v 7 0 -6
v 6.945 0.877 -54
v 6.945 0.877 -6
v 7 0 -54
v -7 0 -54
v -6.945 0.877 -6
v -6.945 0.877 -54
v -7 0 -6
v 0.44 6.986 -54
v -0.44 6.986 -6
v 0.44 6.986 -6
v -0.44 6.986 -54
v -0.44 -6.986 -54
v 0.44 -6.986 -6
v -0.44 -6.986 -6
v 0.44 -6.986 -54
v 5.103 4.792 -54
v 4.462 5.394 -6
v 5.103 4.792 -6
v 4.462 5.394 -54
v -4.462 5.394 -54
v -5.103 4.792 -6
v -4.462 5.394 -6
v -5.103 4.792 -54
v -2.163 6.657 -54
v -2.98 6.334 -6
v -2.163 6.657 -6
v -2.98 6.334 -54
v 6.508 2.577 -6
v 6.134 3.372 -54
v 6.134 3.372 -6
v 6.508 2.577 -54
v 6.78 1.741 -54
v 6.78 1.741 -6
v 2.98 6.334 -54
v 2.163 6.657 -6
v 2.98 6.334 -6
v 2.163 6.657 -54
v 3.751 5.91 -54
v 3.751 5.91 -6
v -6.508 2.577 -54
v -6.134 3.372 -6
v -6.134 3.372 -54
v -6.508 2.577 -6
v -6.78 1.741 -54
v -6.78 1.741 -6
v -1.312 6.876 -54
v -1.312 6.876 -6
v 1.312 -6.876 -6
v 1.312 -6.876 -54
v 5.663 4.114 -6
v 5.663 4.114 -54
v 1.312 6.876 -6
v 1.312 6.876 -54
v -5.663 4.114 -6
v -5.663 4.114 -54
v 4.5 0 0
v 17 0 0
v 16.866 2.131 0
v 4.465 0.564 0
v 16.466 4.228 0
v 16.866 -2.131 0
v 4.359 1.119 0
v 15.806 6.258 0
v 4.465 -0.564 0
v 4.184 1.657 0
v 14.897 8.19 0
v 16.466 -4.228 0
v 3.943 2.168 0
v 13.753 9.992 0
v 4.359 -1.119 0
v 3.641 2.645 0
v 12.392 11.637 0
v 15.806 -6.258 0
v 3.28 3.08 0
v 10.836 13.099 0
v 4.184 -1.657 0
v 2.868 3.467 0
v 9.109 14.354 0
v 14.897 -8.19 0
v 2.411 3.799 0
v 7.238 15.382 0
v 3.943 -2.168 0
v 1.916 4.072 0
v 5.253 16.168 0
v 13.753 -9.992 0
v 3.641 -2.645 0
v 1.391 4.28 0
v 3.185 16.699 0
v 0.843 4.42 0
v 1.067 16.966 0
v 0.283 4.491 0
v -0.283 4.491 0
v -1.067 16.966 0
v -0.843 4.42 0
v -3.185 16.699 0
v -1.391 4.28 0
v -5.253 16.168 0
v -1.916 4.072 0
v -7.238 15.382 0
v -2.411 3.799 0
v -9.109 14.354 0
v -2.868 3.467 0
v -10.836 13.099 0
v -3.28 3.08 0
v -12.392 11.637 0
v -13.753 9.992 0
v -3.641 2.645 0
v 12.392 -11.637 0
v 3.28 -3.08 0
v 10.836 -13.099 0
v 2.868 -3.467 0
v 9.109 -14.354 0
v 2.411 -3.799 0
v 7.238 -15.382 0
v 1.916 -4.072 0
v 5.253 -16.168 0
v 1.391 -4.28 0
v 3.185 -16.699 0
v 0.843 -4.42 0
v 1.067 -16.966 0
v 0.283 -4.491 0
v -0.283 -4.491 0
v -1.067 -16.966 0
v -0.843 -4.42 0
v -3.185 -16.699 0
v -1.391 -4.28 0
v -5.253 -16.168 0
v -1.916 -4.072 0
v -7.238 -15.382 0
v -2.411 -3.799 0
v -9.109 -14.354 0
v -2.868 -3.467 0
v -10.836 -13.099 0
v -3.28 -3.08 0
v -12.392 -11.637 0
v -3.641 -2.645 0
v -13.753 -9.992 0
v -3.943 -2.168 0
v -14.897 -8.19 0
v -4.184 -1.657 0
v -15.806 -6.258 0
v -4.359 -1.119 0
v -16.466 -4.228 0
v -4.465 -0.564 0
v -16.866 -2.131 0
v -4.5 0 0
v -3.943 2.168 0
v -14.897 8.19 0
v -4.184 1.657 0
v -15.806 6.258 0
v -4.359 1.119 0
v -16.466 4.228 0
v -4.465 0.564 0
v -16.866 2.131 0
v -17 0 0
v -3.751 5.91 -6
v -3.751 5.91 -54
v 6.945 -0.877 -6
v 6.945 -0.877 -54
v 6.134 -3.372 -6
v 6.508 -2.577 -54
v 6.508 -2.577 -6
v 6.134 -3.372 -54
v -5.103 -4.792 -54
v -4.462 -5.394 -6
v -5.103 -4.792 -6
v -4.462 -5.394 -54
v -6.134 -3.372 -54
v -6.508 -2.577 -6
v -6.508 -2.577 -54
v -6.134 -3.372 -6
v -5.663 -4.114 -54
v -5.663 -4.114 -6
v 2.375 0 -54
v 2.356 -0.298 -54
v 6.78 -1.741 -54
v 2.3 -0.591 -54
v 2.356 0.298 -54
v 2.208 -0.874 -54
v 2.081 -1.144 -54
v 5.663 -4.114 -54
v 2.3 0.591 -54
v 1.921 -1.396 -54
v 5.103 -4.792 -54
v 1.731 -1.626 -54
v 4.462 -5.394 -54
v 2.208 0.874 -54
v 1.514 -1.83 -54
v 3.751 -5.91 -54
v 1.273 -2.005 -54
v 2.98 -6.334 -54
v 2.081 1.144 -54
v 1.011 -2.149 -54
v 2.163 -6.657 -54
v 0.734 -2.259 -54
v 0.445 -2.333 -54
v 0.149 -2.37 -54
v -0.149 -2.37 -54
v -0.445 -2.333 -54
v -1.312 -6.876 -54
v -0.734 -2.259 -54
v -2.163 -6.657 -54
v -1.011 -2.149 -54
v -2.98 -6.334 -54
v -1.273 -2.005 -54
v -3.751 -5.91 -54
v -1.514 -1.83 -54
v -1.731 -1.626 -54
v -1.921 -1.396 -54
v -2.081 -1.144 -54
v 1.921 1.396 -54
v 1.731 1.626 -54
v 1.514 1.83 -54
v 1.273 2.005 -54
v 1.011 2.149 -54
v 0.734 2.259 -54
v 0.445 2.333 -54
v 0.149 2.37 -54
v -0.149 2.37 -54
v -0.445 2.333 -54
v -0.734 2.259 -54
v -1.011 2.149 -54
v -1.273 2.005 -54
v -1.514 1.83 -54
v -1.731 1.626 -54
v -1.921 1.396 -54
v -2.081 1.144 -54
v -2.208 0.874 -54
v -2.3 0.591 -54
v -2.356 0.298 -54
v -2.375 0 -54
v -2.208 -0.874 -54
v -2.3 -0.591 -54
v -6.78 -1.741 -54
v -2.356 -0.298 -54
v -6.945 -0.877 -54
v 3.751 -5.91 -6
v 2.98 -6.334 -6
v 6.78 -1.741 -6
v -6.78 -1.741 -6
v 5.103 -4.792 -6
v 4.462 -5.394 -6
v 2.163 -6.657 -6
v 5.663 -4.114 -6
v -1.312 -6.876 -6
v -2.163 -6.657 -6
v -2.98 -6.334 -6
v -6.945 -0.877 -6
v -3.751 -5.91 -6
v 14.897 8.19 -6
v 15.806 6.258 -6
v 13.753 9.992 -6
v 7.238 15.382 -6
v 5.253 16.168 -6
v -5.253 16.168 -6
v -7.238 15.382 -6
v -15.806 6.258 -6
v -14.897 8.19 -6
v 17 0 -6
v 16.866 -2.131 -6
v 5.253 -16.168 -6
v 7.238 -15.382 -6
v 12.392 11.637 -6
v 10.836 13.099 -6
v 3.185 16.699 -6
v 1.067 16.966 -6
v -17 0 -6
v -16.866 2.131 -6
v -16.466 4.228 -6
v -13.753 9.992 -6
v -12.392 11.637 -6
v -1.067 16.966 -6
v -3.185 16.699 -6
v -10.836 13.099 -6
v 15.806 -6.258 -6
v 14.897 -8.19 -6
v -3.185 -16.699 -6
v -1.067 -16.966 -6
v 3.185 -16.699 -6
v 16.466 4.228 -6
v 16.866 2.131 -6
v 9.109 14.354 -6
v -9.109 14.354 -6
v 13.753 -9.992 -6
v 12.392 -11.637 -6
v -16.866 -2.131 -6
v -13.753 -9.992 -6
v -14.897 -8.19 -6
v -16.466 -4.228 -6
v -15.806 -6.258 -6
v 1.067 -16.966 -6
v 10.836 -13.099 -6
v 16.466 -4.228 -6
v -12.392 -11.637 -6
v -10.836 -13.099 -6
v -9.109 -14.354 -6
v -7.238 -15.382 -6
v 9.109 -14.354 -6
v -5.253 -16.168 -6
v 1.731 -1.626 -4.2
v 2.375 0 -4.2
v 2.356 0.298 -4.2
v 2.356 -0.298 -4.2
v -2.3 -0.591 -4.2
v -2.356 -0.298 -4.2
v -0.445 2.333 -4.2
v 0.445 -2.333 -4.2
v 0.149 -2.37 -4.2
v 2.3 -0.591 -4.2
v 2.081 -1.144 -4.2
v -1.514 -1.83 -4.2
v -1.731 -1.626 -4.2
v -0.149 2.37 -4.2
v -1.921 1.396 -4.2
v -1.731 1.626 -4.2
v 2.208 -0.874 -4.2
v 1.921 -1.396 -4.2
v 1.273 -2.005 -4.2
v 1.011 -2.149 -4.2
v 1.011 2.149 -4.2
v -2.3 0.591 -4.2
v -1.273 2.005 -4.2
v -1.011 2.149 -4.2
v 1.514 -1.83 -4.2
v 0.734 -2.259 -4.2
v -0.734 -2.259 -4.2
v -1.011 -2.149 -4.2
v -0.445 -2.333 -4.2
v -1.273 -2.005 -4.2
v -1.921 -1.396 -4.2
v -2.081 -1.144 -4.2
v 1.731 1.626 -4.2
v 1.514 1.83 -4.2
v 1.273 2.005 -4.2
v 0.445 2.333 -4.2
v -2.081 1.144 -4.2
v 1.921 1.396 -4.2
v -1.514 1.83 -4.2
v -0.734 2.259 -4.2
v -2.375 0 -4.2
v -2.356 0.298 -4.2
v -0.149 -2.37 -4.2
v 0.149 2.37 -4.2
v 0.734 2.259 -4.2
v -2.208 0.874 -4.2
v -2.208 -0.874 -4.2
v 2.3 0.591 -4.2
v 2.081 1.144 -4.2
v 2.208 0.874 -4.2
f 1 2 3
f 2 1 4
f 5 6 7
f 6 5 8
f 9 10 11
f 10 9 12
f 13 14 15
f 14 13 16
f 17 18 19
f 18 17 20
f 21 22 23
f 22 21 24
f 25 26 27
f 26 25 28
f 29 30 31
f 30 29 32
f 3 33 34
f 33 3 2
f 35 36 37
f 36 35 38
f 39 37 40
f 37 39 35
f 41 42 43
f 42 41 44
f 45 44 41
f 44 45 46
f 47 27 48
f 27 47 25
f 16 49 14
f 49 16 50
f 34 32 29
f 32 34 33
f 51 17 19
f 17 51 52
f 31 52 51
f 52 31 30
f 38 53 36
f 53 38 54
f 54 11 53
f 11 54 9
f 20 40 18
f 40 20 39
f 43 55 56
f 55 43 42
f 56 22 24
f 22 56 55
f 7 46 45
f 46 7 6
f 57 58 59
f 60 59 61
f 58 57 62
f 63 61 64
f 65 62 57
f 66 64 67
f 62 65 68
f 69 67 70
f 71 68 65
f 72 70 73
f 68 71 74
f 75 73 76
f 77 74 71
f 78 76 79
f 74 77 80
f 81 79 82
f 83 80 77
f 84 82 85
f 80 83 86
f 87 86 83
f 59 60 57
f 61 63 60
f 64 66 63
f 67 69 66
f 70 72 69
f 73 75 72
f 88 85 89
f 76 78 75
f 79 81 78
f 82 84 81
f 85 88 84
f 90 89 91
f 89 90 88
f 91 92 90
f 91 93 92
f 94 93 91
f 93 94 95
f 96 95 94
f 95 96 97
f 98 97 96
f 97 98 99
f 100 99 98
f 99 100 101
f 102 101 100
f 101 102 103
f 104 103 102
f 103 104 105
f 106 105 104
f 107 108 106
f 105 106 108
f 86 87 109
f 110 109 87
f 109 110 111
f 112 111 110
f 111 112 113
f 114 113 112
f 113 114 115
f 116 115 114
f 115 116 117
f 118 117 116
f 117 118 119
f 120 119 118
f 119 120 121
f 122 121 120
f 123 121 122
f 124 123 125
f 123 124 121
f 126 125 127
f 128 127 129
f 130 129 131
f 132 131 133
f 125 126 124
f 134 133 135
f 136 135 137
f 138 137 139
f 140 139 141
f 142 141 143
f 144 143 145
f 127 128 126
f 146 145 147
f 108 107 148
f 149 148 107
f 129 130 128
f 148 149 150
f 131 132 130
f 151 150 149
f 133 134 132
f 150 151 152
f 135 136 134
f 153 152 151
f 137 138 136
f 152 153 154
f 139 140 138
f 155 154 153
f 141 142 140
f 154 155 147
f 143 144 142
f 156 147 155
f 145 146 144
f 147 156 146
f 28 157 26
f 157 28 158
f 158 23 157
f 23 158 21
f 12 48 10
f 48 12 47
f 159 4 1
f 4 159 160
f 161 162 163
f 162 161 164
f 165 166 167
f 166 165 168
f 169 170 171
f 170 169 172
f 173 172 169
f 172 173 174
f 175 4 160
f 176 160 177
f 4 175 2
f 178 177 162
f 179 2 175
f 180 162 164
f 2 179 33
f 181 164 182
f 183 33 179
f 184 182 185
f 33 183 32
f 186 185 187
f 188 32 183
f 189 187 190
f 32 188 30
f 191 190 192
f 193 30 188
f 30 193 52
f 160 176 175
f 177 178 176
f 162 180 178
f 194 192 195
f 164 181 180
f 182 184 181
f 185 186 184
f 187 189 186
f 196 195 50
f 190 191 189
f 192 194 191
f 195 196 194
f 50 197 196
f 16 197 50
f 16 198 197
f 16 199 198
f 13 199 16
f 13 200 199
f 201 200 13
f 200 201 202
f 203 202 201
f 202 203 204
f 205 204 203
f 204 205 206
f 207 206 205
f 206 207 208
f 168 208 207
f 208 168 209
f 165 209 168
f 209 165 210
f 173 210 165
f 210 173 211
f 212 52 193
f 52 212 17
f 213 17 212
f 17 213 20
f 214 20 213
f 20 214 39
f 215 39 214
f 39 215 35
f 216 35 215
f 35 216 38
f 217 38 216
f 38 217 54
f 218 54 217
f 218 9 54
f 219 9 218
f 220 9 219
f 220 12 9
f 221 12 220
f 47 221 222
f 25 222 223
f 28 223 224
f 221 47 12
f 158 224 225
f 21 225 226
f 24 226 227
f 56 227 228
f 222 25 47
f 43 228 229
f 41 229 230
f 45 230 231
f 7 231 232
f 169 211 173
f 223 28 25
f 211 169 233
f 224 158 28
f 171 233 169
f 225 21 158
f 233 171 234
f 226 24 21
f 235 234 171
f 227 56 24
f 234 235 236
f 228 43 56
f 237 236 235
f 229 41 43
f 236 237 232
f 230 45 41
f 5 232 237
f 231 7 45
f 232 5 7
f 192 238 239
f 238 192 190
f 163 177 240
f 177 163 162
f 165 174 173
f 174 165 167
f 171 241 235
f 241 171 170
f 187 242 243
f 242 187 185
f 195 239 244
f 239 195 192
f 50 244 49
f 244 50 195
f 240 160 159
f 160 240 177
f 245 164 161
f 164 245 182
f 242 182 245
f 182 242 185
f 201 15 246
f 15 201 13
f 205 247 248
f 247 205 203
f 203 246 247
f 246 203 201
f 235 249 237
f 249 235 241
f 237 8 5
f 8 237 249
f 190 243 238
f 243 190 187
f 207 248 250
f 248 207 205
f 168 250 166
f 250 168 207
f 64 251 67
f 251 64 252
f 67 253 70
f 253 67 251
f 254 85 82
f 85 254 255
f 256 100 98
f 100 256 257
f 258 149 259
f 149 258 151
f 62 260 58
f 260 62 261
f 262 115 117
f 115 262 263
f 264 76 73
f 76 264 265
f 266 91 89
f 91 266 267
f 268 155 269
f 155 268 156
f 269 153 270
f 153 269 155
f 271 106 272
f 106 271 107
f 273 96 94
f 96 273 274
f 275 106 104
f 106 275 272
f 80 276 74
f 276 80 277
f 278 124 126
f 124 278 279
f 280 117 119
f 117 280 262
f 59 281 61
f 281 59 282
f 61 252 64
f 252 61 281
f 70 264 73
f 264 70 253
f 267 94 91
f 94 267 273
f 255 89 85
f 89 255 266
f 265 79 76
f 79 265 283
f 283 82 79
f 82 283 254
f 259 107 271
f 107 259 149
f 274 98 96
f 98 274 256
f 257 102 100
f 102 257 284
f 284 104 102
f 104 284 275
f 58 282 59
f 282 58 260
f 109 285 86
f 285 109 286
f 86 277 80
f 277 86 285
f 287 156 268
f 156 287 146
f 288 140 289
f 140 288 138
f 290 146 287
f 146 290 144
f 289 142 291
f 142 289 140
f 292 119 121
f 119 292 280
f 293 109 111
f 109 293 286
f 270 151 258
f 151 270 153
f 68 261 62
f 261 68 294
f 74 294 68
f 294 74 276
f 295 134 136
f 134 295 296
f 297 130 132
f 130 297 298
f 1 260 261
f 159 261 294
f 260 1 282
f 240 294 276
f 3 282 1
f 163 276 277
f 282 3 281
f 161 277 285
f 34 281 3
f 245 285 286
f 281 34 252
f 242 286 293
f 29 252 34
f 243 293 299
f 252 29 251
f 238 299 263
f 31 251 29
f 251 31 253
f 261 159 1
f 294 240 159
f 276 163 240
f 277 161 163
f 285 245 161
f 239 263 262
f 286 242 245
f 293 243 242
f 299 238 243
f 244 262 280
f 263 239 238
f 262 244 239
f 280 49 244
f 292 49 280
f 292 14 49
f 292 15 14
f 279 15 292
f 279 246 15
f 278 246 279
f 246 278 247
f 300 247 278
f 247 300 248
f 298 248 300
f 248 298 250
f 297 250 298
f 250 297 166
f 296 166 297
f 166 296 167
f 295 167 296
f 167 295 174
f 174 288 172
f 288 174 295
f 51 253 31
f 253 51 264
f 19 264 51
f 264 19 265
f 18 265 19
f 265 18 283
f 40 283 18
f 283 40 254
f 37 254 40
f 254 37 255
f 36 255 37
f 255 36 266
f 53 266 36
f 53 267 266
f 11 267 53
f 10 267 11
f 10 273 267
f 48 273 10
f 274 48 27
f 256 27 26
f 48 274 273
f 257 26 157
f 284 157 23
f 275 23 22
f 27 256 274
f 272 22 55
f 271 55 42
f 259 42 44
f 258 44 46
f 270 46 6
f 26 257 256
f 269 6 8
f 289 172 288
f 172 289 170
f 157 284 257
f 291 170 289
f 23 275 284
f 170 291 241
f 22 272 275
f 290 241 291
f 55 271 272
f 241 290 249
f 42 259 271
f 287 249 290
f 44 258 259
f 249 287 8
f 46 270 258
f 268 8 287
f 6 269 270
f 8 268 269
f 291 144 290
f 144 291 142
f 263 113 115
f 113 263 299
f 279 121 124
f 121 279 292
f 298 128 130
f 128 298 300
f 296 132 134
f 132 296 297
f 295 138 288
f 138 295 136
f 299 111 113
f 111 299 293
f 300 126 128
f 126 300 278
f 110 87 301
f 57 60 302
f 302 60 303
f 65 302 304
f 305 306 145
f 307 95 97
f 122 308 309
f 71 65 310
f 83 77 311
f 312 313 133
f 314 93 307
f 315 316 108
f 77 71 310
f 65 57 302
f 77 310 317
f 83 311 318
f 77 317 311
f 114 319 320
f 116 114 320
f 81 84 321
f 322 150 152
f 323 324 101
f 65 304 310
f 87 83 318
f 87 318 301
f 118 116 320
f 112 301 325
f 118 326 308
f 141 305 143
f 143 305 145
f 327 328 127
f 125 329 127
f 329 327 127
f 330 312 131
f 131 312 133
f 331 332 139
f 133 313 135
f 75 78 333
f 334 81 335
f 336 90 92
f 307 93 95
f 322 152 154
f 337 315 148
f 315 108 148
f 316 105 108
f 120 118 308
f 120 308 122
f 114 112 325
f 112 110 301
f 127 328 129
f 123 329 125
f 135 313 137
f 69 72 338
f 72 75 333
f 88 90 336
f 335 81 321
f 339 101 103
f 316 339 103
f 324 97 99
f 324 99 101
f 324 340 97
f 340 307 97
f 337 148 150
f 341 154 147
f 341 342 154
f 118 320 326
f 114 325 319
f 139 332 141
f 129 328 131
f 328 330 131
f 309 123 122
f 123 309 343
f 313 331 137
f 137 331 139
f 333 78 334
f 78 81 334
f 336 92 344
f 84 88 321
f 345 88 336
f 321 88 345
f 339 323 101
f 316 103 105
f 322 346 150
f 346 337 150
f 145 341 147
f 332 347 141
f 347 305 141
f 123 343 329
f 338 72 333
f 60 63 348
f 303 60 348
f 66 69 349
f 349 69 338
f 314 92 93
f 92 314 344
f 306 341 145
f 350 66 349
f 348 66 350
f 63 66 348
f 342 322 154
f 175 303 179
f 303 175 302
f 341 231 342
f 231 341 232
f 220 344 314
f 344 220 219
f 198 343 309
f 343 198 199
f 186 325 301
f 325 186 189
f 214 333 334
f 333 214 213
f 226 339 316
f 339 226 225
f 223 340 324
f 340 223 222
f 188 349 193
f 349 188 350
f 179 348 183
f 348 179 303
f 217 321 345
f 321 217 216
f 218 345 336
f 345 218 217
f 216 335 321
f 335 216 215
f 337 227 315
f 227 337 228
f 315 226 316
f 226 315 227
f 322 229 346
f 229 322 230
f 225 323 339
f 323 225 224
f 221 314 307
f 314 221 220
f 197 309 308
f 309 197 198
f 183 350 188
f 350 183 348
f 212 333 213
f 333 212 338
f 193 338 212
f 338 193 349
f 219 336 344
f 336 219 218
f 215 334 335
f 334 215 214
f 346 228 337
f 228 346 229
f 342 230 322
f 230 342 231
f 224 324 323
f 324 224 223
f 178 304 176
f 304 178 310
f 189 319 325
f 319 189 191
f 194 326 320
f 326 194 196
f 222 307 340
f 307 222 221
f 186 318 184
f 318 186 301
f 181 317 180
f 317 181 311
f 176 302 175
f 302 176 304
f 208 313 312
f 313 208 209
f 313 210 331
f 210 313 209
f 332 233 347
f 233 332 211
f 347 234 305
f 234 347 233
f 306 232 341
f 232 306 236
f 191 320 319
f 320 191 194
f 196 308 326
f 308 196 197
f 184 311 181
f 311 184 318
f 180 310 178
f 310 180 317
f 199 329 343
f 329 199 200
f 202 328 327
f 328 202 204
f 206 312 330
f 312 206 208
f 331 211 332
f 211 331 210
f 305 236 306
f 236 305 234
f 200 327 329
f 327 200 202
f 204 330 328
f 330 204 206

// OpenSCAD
$fn = 50;


difference() {
	union() {
		translate(v = [0, 0, -54.0000000000]) {
			cylinder(h = 54, r = 7.0000000000);
		}
		translate(v = [0, 0, -6.0000000000]) {
			cylinder(h = 6, r = 17.0000000000);
		}
	}
	union() {
		translate(v = [0, 0, 0]) {
			rotate(a = [0, 0, 0]) {
				difference() {
					union() {
						#translate(v = [0, 0, -54.0000000000]) {
							cylinder(h = 54, r = 2.2500000000);
						}
						#translate(v = [0, 0, -4.2000000000]) {
							cylinder(h = 4.2000000000, r1 = 2.3750000000, r2 = 4.5000000000);
						}
						#translate(v = [0, 0, -54.0000000000]) {
							cylinder(h = 54, r = 2.3750000000);
						}
						#translate(v = [0, 0, -54.0000000000]) {
							cylinder(h = 54, r = 2.2500000000);
						}
					}
					union();
				}
			}
		}
	}
}
